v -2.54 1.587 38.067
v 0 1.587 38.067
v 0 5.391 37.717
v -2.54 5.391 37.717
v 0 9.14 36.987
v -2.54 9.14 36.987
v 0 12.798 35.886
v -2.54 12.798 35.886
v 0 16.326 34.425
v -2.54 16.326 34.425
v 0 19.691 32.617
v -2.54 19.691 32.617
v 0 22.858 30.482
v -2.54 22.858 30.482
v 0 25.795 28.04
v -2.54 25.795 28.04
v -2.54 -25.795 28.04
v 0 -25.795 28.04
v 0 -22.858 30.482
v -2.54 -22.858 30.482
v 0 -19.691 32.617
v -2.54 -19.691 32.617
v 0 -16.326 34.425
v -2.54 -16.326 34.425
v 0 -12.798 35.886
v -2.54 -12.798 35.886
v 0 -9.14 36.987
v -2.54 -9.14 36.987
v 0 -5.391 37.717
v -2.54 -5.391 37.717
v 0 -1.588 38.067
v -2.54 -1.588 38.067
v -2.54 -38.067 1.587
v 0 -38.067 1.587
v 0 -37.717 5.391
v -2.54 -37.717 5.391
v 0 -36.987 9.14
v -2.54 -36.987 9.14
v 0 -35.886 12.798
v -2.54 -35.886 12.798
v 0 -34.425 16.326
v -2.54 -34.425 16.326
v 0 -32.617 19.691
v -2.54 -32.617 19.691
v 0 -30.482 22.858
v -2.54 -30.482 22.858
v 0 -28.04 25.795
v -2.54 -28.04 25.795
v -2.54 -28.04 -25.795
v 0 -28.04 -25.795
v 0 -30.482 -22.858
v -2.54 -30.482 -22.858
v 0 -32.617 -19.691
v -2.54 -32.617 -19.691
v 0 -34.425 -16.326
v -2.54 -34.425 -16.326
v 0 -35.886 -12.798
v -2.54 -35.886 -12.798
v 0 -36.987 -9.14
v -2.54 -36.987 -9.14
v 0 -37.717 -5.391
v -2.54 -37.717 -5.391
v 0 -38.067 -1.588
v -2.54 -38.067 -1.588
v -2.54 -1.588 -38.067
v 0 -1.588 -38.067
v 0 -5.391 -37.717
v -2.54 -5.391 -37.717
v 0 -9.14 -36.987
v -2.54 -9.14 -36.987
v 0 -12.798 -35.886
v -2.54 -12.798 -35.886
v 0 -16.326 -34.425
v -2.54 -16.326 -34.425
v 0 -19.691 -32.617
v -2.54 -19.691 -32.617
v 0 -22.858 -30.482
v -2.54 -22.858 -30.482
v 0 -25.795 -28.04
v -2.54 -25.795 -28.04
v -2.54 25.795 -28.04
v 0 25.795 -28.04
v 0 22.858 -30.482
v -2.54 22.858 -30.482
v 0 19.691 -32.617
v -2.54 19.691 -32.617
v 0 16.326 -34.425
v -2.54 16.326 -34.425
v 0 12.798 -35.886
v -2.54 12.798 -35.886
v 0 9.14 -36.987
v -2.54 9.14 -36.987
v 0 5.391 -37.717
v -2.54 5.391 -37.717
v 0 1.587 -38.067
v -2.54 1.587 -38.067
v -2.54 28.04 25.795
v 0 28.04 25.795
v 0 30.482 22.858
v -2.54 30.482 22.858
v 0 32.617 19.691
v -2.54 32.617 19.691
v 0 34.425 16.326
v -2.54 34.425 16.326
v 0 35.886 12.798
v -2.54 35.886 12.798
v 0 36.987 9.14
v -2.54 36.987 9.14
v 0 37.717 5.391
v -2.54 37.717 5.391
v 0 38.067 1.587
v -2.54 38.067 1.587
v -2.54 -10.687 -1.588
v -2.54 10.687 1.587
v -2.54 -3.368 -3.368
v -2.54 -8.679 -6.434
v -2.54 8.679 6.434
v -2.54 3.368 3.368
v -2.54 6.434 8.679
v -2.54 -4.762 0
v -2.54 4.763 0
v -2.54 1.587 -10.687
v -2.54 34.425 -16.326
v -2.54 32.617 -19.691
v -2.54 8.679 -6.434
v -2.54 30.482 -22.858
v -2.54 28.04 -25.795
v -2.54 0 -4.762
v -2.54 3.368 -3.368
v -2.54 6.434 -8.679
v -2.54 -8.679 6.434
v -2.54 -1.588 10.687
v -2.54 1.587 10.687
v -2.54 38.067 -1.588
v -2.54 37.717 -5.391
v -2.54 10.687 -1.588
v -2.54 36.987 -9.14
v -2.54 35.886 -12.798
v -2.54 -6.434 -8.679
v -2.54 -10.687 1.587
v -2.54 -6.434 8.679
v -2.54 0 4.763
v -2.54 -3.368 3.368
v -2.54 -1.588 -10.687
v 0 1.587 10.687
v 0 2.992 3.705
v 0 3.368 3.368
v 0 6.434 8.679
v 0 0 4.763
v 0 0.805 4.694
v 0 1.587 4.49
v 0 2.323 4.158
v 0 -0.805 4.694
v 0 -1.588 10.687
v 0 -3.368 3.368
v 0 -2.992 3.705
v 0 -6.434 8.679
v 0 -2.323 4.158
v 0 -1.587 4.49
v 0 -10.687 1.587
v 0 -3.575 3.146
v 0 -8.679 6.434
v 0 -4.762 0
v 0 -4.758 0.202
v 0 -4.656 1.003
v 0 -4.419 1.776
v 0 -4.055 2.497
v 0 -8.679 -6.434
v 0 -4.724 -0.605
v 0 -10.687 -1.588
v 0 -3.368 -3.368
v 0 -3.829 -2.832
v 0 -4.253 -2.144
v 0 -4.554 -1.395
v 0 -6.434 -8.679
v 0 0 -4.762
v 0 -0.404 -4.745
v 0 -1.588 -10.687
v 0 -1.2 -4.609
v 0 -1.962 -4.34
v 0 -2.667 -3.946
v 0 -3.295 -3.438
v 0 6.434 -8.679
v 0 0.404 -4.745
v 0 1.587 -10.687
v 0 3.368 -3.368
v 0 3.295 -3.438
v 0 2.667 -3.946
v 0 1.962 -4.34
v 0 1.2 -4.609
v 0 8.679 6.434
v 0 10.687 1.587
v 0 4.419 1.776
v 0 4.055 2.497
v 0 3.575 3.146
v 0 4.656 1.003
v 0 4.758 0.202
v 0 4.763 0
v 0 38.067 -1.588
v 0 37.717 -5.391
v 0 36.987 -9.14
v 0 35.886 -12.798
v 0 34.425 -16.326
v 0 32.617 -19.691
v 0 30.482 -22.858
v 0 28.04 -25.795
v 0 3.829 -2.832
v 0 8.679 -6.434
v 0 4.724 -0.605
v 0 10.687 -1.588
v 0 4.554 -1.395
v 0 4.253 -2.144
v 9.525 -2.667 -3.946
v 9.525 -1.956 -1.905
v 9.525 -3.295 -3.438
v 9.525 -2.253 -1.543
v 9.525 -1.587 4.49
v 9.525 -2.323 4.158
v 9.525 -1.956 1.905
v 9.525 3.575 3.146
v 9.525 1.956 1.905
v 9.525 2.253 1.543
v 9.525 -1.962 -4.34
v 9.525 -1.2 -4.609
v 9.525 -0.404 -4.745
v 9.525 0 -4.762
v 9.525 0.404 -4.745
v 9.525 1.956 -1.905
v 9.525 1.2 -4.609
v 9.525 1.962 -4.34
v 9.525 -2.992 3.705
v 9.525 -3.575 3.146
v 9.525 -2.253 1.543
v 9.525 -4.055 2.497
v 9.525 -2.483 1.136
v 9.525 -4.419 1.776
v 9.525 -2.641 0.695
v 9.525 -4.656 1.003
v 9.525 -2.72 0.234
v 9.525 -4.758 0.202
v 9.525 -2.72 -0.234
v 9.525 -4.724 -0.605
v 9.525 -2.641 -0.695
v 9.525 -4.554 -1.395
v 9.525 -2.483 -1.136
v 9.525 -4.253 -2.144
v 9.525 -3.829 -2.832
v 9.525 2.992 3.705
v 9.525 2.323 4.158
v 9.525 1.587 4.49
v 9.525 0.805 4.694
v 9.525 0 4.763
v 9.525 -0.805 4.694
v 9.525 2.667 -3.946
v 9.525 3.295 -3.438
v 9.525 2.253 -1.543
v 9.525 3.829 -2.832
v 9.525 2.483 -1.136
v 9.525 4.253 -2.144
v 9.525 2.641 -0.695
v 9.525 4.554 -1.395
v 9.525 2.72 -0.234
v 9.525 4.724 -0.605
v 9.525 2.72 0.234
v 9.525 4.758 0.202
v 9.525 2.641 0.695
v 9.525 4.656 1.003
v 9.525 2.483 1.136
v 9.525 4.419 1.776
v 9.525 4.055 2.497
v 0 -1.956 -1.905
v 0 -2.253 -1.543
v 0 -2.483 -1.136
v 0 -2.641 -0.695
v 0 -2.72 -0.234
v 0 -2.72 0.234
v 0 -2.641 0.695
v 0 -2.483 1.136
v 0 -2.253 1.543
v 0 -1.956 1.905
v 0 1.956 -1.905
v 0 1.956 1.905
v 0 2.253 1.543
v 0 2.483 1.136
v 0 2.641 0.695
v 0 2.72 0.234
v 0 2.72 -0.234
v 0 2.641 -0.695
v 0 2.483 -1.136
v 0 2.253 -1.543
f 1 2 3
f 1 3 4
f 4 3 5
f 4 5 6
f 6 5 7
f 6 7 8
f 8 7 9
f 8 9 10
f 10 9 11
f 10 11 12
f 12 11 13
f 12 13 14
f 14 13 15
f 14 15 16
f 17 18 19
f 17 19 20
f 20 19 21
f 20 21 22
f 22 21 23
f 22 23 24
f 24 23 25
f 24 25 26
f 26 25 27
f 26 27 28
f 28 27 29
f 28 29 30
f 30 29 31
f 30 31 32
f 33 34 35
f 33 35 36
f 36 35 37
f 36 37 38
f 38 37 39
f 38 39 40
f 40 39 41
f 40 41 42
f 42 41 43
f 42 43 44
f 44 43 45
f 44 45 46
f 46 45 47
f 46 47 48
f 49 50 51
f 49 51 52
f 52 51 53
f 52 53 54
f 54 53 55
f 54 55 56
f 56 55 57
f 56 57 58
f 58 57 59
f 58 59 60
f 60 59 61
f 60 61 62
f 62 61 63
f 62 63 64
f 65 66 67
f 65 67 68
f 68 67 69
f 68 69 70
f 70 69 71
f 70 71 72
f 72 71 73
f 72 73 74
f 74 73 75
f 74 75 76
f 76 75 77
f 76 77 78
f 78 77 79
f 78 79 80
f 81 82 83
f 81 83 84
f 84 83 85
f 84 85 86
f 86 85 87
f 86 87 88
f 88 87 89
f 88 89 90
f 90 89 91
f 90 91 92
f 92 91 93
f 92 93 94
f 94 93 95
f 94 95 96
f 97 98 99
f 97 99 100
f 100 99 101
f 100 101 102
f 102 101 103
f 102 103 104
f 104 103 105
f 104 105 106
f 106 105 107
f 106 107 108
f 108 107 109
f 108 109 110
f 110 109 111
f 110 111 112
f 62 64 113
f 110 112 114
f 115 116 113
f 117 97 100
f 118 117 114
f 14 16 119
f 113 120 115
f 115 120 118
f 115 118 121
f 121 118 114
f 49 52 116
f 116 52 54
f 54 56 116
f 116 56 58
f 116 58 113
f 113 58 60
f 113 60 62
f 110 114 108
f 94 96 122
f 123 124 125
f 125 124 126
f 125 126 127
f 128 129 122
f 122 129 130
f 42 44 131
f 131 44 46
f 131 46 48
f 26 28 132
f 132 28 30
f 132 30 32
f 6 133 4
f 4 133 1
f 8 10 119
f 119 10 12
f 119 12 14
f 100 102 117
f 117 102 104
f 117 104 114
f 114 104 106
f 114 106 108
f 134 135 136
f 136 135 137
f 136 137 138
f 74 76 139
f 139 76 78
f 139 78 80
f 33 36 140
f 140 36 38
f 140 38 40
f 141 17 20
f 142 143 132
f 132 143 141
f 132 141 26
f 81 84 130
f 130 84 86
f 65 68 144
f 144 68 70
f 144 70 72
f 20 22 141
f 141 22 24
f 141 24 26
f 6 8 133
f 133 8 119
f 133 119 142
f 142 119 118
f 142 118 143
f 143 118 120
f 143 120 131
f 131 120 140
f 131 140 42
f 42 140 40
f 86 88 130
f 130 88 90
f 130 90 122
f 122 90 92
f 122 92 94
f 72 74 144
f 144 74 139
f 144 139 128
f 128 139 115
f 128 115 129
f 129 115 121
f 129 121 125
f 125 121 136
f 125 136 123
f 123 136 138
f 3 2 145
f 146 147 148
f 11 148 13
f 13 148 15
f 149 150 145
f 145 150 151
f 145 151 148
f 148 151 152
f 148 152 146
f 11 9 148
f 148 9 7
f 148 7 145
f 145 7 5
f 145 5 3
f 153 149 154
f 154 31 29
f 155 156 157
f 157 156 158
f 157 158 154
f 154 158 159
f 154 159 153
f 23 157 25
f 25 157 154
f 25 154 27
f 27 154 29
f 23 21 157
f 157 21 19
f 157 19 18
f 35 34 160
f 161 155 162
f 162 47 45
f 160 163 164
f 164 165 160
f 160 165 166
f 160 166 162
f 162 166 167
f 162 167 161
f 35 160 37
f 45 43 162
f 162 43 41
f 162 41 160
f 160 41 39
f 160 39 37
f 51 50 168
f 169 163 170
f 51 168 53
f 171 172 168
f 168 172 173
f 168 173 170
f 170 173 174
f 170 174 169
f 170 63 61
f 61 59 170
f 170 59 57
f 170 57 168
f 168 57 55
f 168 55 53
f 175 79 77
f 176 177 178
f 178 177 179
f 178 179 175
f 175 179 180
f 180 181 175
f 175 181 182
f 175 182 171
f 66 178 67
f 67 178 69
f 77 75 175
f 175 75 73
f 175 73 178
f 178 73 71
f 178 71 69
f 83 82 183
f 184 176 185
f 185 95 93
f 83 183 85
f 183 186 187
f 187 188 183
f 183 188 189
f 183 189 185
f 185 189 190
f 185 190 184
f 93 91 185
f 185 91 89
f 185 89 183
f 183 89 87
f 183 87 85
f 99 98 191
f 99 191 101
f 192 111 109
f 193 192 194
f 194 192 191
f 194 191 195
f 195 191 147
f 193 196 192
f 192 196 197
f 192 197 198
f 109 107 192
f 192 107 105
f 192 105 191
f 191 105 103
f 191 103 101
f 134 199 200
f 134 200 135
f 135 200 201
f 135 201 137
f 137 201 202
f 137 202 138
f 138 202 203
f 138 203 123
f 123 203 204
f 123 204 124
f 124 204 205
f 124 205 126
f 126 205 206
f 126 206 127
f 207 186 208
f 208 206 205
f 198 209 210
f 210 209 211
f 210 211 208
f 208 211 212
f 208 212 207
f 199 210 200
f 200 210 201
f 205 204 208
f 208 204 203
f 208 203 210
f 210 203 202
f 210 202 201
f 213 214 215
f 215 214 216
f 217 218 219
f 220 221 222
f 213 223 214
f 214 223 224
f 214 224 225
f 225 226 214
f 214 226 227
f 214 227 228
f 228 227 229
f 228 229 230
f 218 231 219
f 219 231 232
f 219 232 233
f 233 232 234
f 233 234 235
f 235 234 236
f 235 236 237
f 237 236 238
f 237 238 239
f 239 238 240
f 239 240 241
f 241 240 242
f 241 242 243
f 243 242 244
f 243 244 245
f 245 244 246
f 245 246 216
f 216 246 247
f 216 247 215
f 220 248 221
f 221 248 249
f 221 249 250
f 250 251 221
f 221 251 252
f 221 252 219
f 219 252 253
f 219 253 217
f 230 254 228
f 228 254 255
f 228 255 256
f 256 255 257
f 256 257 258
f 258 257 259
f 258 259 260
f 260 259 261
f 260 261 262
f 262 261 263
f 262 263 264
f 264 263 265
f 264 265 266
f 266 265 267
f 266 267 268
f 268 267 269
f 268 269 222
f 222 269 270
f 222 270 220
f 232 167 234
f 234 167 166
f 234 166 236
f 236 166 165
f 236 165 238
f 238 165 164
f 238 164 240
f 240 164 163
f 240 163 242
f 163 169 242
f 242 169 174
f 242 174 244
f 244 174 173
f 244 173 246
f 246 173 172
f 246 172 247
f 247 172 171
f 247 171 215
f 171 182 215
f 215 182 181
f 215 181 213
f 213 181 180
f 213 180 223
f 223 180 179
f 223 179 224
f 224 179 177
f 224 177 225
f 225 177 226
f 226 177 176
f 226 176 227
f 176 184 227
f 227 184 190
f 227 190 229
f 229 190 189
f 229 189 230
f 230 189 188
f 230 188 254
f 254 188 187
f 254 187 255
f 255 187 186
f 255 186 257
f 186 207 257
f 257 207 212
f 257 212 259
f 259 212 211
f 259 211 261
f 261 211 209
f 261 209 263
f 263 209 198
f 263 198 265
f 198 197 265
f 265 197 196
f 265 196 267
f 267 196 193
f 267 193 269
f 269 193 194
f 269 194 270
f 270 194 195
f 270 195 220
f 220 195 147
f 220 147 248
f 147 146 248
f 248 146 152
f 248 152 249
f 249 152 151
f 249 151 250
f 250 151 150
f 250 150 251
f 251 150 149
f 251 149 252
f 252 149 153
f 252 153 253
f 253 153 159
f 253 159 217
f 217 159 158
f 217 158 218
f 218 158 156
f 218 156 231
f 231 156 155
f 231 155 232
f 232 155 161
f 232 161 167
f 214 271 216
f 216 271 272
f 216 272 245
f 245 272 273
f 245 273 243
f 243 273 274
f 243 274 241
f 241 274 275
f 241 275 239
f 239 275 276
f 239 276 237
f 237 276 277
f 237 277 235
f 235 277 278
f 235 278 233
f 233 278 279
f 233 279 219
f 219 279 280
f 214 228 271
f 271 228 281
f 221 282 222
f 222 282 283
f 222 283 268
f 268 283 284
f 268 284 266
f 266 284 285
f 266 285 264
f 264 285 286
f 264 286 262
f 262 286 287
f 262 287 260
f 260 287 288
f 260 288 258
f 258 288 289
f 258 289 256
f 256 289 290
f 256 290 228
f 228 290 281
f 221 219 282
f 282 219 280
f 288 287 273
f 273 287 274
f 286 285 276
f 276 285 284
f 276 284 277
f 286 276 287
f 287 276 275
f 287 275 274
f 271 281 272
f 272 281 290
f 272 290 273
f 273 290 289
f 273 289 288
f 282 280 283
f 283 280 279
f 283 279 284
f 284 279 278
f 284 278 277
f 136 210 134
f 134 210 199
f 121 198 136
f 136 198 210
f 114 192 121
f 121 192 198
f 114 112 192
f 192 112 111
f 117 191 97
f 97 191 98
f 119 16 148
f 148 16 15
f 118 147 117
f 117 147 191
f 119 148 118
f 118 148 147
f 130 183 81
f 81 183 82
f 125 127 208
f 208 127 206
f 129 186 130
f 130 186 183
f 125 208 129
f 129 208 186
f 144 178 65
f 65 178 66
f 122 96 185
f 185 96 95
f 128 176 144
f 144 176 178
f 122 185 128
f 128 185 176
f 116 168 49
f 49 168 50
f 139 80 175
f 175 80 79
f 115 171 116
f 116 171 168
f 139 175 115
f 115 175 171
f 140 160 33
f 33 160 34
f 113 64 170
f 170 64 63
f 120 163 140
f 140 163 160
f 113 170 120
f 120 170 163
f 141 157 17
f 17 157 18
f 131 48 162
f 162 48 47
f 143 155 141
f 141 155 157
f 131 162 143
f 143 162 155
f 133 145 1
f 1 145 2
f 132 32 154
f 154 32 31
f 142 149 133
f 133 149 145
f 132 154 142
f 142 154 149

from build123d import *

# Parameters (mm, degrees)
SKETCH1_R           = 4.7625
BOSS_EXTRUDE1_DEPTH = 9.525
SKETCH2_R           = 38.1
BOSS_EXTRUDE2_DEPTH = 2.54
CUT_EXTRUDE1_DEPTH  = 55.716959208
CIRPATTERN1_COUNT   = 8


with BuildPart() as part:
    # Sketch1 → Boss-Extrude1 (new body)
    with BuildSketch(Plane(origin=(0, 0, 0), x_dir=(0, 0, -1), z_dir=(1, 0, 0))):
        with Locations(Location((0, 0, 0), (0, 0, 180))):
            Circle(SKETCH1_R)
        with BuildLine():
            Line((-1.905, -1.956171069), (-1.905, 1.956171069))
            ThreePointArc((-1.905, 1.956171069), (0, 2.7305), (1.905, 1.956171069))
            Line((1.905, 1.956171069), (1.905, -1.956171069))
            ThreePointArc((1.905, -1.956171069), (0, -2.7305), (-1.905, -1.956171069))
        make_face(mode=Mode.SUBTRACT)
    extrude(amount=BOSS_EXTRUDE1_DEPTH)

    # Sketch2 → Boss-Extrude2 (add)
    with BuildSketch(Plane.ZY):
        Circle(SKETCH2_R)
    extrude(amount=BOSS_EXTRUDE2_DEPTH)

    # Sketch3 → Cut-Extrude1 (cut, symmetric)
    with BuildSketch(Plane(origin=(0, 0, 0), x_dir=(0, 0, -1), z_dir=(1, 0, 0))):
        Polygon((-1.5875, 10.687130657), (0, 4.7625), (1.5875, 10.687130657), (1.5875, 38.1), (-1.5875, 38.1), align=None)
    cut_extrude1 = extrude(amount=CUT_EXTRUDE1_DEPTH, both=True, mode=Mode.SUBTRACT)

    # CirPattern1: Cut-Extrude1 ×8 about axis
    cirpattern1_axis = Axis((0, 0, 0), (1, 0, 0))
    for i in range(1, CIRPATTERN1_COUNT):
        add(cut_extrude1.rotate(cirpattern1_axis, i * 360 / CIRPATTERN1_COUNT), mode=Mode.SUBTRACT)


solid = part.part
